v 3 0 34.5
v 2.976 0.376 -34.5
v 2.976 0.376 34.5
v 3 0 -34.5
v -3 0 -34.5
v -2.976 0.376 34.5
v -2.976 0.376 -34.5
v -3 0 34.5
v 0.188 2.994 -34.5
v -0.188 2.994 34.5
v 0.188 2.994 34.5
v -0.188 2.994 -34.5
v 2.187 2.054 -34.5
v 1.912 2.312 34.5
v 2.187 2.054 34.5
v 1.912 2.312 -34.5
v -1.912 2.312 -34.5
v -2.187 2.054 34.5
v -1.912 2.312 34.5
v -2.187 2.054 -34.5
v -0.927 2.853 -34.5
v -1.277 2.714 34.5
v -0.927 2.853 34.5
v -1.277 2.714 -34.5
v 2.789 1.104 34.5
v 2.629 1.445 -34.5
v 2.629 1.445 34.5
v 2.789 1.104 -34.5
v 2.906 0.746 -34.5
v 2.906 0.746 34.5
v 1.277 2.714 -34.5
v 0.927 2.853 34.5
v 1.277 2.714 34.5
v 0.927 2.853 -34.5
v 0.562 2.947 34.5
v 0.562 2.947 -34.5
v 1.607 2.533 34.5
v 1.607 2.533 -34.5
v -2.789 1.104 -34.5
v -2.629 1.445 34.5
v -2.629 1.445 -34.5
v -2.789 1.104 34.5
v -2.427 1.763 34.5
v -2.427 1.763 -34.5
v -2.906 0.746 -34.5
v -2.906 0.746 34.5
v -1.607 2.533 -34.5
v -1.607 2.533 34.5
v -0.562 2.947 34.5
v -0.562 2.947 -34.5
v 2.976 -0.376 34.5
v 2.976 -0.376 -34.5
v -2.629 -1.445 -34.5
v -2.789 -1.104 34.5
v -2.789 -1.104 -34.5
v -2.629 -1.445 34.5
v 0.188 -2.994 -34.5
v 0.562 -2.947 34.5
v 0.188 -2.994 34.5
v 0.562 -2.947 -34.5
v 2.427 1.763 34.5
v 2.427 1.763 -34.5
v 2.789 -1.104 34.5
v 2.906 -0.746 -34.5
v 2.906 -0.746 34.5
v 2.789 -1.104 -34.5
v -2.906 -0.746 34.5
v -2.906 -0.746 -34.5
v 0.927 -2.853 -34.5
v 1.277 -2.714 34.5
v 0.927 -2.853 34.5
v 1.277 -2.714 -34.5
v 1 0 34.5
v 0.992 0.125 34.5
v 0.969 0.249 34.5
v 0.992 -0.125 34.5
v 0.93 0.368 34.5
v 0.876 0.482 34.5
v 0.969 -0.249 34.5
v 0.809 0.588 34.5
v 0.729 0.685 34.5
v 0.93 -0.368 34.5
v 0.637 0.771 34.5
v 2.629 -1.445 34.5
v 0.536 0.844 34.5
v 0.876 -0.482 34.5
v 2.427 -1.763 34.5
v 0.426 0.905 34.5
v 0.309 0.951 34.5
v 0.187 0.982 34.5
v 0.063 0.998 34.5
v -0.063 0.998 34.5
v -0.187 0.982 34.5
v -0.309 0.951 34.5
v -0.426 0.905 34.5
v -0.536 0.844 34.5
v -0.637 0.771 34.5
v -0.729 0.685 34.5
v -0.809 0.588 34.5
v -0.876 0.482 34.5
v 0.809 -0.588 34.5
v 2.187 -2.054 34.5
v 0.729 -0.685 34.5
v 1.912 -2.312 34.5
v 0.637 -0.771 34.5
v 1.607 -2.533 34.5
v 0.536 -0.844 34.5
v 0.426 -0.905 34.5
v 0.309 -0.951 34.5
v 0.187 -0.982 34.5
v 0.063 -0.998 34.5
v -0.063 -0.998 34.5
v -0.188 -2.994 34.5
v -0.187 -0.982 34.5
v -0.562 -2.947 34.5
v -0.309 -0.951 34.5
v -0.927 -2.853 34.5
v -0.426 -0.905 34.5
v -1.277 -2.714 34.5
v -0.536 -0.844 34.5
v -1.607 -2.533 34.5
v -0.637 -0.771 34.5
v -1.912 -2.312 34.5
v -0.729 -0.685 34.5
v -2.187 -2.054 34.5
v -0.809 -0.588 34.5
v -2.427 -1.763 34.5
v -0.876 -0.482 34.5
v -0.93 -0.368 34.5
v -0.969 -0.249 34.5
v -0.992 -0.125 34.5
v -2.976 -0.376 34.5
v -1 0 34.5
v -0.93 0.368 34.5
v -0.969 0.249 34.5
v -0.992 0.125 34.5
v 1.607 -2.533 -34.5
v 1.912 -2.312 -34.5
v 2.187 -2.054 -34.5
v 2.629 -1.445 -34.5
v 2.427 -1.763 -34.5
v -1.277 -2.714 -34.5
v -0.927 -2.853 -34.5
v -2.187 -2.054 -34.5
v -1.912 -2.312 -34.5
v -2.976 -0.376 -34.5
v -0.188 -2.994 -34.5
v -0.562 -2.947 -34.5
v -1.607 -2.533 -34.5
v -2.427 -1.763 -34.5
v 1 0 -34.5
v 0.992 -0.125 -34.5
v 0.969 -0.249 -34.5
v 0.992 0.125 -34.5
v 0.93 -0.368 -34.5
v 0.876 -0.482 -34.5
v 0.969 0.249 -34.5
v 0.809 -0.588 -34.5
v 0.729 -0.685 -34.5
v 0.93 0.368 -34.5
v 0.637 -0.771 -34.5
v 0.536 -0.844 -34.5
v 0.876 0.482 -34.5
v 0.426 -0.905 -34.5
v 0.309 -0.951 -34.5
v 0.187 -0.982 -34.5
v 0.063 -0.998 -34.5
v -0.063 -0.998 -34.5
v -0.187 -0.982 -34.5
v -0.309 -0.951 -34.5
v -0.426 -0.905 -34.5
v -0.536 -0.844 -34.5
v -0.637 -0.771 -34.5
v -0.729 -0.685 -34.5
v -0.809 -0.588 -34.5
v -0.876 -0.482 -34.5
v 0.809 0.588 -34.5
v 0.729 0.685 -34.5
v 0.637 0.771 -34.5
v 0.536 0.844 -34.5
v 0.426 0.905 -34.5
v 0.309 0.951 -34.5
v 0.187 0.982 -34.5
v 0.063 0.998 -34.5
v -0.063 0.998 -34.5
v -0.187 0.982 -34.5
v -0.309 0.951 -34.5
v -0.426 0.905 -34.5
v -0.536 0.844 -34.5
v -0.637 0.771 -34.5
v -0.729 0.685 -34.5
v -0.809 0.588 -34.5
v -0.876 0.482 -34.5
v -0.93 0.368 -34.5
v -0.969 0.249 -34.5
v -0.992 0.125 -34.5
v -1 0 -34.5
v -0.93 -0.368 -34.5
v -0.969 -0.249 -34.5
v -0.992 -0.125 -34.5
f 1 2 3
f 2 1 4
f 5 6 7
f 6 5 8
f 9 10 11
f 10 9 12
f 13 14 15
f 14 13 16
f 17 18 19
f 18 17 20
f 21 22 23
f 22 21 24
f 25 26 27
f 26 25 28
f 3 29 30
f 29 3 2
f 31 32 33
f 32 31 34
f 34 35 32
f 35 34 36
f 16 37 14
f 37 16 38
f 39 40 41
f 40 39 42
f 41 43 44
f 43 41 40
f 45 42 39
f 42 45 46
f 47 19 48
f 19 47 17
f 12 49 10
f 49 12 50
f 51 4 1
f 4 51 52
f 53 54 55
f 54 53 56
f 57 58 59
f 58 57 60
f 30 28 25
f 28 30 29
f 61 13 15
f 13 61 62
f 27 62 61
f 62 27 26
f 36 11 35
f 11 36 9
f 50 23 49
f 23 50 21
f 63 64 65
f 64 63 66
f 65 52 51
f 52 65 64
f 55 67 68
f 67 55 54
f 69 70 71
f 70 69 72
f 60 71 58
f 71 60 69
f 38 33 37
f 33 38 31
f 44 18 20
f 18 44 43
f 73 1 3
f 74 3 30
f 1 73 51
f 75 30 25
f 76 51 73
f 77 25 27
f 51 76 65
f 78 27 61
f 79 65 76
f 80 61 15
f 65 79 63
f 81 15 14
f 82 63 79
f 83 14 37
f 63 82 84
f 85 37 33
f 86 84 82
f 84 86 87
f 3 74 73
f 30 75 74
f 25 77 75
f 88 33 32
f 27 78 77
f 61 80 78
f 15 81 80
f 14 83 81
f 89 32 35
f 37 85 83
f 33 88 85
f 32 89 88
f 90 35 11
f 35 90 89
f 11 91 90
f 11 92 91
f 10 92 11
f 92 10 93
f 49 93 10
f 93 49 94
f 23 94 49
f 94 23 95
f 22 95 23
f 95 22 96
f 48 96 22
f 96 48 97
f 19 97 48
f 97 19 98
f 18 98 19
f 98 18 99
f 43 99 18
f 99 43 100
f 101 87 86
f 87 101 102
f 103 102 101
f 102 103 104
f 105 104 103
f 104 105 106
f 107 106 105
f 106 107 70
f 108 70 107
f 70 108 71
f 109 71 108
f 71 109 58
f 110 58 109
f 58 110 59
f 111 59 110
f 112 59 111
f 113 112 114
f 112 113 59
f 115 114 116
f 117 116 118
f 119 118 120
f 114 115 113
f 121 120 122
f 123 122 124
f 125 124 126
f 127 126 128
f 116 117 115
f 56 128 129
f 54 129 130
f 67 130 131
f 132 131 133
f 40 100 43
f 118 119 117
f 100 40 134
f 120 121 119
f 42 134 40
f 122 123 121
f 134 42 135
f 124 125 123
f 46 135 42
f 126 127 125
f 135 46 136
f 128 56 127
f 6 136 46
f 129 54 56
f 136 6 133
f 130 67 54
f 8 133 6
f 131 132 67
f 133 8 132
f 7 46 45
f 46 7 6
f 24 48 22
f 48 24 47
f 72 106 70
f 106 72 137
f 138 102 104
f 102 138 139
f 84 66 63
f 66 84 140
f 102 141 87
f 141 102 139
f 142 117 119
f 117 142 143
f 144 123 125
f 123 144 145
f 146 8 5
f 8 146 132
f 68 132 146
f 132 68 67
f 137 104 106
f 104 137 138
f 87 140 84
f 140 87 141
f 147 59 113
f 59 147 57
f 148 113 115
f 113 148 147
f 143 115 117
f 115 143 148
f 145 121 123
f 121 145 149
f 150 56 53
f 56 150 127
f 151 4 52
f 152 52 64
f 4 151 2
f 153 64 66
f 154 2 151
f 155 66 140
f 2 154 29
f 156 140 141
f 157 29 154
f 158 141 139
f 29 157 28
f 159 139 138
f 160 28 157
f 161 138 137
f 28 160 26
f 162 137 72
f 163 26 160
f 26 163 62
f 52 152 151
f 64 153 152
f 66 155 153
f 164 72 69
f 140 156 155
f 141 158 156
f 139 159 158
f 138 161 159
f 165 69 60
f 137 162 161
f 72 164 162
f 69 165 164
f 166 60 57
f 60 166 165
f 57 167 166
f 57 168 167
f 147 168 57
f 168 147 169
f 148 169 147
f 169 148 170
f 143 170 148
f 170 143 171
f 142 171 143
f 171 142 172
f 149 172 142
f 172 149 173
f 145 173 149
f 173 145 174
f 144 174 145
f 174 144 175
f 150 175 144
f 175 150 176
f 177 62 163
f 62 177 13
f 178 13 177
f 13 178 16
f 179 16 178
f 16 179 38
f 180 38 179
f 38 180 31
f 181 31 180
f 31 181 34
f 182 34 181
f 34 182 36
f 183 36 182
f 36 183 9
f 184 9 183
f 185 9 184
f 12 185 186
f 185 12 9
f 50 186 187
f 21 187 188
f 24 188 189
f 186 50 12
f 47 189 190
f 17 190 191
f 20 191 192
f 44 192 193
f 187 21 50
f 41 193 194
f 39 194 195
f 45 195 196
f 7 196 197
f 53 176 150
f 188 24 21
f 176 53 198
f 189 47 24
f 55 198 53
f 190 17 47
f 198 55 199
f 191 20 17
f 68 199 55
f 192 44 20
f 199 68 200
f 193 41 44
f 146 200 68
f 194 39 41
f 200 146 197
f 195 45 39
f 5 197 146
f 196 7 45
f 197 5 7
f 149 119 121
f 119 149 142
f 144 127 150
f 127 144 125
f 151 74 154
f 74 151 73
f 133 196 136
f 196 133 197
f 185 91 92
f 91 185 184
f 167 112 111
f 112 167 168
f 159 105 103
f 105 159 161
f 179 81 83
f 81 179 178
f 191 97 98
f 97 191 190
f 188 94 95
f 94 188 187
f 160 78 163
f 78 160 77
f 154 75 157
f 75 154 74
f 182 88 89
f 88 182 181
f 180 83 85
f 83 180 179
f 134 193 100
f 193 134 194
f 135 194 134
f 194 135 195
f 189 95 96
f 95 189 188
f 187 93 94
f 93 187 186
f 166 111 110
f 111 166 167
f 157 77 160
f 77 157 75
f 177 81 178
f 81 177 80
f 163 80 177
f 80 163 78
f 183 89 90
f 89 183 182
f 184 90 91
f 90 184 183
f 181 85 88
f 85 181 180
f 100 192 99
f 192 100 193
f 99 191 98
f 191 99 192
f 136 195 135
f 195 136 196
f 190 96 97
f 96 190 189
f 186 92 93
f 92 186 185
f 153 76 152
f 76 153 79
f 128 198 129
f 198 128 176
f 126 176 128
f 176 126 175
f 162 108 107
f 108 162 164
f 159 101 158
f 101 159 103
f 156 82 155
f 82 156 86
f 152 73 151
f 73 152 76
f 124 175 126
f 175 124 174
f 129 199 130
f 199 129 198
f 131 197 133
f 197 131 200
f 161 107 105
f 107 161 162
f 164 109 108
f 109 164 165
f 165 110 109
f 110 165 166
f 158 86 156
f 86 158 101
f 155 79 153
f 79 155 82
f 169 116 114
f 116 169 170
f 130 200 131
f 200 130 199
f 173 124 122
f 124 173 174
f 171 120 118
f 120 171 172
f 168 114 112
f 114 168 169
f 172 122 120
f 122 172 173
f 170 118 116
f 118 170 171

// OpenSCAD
$fn = 50;


difference() {
	union() {
		translate(v = [0, 0, -34.5000000000]) {
			cylinder(h = 69, r = 3.0000000000);
		}
	}
	union() {
		translate(v = [0, 0, -100.0000000000]) {
			cylinder(h = 200, r = 1.0000000000);
		}
	}
}
